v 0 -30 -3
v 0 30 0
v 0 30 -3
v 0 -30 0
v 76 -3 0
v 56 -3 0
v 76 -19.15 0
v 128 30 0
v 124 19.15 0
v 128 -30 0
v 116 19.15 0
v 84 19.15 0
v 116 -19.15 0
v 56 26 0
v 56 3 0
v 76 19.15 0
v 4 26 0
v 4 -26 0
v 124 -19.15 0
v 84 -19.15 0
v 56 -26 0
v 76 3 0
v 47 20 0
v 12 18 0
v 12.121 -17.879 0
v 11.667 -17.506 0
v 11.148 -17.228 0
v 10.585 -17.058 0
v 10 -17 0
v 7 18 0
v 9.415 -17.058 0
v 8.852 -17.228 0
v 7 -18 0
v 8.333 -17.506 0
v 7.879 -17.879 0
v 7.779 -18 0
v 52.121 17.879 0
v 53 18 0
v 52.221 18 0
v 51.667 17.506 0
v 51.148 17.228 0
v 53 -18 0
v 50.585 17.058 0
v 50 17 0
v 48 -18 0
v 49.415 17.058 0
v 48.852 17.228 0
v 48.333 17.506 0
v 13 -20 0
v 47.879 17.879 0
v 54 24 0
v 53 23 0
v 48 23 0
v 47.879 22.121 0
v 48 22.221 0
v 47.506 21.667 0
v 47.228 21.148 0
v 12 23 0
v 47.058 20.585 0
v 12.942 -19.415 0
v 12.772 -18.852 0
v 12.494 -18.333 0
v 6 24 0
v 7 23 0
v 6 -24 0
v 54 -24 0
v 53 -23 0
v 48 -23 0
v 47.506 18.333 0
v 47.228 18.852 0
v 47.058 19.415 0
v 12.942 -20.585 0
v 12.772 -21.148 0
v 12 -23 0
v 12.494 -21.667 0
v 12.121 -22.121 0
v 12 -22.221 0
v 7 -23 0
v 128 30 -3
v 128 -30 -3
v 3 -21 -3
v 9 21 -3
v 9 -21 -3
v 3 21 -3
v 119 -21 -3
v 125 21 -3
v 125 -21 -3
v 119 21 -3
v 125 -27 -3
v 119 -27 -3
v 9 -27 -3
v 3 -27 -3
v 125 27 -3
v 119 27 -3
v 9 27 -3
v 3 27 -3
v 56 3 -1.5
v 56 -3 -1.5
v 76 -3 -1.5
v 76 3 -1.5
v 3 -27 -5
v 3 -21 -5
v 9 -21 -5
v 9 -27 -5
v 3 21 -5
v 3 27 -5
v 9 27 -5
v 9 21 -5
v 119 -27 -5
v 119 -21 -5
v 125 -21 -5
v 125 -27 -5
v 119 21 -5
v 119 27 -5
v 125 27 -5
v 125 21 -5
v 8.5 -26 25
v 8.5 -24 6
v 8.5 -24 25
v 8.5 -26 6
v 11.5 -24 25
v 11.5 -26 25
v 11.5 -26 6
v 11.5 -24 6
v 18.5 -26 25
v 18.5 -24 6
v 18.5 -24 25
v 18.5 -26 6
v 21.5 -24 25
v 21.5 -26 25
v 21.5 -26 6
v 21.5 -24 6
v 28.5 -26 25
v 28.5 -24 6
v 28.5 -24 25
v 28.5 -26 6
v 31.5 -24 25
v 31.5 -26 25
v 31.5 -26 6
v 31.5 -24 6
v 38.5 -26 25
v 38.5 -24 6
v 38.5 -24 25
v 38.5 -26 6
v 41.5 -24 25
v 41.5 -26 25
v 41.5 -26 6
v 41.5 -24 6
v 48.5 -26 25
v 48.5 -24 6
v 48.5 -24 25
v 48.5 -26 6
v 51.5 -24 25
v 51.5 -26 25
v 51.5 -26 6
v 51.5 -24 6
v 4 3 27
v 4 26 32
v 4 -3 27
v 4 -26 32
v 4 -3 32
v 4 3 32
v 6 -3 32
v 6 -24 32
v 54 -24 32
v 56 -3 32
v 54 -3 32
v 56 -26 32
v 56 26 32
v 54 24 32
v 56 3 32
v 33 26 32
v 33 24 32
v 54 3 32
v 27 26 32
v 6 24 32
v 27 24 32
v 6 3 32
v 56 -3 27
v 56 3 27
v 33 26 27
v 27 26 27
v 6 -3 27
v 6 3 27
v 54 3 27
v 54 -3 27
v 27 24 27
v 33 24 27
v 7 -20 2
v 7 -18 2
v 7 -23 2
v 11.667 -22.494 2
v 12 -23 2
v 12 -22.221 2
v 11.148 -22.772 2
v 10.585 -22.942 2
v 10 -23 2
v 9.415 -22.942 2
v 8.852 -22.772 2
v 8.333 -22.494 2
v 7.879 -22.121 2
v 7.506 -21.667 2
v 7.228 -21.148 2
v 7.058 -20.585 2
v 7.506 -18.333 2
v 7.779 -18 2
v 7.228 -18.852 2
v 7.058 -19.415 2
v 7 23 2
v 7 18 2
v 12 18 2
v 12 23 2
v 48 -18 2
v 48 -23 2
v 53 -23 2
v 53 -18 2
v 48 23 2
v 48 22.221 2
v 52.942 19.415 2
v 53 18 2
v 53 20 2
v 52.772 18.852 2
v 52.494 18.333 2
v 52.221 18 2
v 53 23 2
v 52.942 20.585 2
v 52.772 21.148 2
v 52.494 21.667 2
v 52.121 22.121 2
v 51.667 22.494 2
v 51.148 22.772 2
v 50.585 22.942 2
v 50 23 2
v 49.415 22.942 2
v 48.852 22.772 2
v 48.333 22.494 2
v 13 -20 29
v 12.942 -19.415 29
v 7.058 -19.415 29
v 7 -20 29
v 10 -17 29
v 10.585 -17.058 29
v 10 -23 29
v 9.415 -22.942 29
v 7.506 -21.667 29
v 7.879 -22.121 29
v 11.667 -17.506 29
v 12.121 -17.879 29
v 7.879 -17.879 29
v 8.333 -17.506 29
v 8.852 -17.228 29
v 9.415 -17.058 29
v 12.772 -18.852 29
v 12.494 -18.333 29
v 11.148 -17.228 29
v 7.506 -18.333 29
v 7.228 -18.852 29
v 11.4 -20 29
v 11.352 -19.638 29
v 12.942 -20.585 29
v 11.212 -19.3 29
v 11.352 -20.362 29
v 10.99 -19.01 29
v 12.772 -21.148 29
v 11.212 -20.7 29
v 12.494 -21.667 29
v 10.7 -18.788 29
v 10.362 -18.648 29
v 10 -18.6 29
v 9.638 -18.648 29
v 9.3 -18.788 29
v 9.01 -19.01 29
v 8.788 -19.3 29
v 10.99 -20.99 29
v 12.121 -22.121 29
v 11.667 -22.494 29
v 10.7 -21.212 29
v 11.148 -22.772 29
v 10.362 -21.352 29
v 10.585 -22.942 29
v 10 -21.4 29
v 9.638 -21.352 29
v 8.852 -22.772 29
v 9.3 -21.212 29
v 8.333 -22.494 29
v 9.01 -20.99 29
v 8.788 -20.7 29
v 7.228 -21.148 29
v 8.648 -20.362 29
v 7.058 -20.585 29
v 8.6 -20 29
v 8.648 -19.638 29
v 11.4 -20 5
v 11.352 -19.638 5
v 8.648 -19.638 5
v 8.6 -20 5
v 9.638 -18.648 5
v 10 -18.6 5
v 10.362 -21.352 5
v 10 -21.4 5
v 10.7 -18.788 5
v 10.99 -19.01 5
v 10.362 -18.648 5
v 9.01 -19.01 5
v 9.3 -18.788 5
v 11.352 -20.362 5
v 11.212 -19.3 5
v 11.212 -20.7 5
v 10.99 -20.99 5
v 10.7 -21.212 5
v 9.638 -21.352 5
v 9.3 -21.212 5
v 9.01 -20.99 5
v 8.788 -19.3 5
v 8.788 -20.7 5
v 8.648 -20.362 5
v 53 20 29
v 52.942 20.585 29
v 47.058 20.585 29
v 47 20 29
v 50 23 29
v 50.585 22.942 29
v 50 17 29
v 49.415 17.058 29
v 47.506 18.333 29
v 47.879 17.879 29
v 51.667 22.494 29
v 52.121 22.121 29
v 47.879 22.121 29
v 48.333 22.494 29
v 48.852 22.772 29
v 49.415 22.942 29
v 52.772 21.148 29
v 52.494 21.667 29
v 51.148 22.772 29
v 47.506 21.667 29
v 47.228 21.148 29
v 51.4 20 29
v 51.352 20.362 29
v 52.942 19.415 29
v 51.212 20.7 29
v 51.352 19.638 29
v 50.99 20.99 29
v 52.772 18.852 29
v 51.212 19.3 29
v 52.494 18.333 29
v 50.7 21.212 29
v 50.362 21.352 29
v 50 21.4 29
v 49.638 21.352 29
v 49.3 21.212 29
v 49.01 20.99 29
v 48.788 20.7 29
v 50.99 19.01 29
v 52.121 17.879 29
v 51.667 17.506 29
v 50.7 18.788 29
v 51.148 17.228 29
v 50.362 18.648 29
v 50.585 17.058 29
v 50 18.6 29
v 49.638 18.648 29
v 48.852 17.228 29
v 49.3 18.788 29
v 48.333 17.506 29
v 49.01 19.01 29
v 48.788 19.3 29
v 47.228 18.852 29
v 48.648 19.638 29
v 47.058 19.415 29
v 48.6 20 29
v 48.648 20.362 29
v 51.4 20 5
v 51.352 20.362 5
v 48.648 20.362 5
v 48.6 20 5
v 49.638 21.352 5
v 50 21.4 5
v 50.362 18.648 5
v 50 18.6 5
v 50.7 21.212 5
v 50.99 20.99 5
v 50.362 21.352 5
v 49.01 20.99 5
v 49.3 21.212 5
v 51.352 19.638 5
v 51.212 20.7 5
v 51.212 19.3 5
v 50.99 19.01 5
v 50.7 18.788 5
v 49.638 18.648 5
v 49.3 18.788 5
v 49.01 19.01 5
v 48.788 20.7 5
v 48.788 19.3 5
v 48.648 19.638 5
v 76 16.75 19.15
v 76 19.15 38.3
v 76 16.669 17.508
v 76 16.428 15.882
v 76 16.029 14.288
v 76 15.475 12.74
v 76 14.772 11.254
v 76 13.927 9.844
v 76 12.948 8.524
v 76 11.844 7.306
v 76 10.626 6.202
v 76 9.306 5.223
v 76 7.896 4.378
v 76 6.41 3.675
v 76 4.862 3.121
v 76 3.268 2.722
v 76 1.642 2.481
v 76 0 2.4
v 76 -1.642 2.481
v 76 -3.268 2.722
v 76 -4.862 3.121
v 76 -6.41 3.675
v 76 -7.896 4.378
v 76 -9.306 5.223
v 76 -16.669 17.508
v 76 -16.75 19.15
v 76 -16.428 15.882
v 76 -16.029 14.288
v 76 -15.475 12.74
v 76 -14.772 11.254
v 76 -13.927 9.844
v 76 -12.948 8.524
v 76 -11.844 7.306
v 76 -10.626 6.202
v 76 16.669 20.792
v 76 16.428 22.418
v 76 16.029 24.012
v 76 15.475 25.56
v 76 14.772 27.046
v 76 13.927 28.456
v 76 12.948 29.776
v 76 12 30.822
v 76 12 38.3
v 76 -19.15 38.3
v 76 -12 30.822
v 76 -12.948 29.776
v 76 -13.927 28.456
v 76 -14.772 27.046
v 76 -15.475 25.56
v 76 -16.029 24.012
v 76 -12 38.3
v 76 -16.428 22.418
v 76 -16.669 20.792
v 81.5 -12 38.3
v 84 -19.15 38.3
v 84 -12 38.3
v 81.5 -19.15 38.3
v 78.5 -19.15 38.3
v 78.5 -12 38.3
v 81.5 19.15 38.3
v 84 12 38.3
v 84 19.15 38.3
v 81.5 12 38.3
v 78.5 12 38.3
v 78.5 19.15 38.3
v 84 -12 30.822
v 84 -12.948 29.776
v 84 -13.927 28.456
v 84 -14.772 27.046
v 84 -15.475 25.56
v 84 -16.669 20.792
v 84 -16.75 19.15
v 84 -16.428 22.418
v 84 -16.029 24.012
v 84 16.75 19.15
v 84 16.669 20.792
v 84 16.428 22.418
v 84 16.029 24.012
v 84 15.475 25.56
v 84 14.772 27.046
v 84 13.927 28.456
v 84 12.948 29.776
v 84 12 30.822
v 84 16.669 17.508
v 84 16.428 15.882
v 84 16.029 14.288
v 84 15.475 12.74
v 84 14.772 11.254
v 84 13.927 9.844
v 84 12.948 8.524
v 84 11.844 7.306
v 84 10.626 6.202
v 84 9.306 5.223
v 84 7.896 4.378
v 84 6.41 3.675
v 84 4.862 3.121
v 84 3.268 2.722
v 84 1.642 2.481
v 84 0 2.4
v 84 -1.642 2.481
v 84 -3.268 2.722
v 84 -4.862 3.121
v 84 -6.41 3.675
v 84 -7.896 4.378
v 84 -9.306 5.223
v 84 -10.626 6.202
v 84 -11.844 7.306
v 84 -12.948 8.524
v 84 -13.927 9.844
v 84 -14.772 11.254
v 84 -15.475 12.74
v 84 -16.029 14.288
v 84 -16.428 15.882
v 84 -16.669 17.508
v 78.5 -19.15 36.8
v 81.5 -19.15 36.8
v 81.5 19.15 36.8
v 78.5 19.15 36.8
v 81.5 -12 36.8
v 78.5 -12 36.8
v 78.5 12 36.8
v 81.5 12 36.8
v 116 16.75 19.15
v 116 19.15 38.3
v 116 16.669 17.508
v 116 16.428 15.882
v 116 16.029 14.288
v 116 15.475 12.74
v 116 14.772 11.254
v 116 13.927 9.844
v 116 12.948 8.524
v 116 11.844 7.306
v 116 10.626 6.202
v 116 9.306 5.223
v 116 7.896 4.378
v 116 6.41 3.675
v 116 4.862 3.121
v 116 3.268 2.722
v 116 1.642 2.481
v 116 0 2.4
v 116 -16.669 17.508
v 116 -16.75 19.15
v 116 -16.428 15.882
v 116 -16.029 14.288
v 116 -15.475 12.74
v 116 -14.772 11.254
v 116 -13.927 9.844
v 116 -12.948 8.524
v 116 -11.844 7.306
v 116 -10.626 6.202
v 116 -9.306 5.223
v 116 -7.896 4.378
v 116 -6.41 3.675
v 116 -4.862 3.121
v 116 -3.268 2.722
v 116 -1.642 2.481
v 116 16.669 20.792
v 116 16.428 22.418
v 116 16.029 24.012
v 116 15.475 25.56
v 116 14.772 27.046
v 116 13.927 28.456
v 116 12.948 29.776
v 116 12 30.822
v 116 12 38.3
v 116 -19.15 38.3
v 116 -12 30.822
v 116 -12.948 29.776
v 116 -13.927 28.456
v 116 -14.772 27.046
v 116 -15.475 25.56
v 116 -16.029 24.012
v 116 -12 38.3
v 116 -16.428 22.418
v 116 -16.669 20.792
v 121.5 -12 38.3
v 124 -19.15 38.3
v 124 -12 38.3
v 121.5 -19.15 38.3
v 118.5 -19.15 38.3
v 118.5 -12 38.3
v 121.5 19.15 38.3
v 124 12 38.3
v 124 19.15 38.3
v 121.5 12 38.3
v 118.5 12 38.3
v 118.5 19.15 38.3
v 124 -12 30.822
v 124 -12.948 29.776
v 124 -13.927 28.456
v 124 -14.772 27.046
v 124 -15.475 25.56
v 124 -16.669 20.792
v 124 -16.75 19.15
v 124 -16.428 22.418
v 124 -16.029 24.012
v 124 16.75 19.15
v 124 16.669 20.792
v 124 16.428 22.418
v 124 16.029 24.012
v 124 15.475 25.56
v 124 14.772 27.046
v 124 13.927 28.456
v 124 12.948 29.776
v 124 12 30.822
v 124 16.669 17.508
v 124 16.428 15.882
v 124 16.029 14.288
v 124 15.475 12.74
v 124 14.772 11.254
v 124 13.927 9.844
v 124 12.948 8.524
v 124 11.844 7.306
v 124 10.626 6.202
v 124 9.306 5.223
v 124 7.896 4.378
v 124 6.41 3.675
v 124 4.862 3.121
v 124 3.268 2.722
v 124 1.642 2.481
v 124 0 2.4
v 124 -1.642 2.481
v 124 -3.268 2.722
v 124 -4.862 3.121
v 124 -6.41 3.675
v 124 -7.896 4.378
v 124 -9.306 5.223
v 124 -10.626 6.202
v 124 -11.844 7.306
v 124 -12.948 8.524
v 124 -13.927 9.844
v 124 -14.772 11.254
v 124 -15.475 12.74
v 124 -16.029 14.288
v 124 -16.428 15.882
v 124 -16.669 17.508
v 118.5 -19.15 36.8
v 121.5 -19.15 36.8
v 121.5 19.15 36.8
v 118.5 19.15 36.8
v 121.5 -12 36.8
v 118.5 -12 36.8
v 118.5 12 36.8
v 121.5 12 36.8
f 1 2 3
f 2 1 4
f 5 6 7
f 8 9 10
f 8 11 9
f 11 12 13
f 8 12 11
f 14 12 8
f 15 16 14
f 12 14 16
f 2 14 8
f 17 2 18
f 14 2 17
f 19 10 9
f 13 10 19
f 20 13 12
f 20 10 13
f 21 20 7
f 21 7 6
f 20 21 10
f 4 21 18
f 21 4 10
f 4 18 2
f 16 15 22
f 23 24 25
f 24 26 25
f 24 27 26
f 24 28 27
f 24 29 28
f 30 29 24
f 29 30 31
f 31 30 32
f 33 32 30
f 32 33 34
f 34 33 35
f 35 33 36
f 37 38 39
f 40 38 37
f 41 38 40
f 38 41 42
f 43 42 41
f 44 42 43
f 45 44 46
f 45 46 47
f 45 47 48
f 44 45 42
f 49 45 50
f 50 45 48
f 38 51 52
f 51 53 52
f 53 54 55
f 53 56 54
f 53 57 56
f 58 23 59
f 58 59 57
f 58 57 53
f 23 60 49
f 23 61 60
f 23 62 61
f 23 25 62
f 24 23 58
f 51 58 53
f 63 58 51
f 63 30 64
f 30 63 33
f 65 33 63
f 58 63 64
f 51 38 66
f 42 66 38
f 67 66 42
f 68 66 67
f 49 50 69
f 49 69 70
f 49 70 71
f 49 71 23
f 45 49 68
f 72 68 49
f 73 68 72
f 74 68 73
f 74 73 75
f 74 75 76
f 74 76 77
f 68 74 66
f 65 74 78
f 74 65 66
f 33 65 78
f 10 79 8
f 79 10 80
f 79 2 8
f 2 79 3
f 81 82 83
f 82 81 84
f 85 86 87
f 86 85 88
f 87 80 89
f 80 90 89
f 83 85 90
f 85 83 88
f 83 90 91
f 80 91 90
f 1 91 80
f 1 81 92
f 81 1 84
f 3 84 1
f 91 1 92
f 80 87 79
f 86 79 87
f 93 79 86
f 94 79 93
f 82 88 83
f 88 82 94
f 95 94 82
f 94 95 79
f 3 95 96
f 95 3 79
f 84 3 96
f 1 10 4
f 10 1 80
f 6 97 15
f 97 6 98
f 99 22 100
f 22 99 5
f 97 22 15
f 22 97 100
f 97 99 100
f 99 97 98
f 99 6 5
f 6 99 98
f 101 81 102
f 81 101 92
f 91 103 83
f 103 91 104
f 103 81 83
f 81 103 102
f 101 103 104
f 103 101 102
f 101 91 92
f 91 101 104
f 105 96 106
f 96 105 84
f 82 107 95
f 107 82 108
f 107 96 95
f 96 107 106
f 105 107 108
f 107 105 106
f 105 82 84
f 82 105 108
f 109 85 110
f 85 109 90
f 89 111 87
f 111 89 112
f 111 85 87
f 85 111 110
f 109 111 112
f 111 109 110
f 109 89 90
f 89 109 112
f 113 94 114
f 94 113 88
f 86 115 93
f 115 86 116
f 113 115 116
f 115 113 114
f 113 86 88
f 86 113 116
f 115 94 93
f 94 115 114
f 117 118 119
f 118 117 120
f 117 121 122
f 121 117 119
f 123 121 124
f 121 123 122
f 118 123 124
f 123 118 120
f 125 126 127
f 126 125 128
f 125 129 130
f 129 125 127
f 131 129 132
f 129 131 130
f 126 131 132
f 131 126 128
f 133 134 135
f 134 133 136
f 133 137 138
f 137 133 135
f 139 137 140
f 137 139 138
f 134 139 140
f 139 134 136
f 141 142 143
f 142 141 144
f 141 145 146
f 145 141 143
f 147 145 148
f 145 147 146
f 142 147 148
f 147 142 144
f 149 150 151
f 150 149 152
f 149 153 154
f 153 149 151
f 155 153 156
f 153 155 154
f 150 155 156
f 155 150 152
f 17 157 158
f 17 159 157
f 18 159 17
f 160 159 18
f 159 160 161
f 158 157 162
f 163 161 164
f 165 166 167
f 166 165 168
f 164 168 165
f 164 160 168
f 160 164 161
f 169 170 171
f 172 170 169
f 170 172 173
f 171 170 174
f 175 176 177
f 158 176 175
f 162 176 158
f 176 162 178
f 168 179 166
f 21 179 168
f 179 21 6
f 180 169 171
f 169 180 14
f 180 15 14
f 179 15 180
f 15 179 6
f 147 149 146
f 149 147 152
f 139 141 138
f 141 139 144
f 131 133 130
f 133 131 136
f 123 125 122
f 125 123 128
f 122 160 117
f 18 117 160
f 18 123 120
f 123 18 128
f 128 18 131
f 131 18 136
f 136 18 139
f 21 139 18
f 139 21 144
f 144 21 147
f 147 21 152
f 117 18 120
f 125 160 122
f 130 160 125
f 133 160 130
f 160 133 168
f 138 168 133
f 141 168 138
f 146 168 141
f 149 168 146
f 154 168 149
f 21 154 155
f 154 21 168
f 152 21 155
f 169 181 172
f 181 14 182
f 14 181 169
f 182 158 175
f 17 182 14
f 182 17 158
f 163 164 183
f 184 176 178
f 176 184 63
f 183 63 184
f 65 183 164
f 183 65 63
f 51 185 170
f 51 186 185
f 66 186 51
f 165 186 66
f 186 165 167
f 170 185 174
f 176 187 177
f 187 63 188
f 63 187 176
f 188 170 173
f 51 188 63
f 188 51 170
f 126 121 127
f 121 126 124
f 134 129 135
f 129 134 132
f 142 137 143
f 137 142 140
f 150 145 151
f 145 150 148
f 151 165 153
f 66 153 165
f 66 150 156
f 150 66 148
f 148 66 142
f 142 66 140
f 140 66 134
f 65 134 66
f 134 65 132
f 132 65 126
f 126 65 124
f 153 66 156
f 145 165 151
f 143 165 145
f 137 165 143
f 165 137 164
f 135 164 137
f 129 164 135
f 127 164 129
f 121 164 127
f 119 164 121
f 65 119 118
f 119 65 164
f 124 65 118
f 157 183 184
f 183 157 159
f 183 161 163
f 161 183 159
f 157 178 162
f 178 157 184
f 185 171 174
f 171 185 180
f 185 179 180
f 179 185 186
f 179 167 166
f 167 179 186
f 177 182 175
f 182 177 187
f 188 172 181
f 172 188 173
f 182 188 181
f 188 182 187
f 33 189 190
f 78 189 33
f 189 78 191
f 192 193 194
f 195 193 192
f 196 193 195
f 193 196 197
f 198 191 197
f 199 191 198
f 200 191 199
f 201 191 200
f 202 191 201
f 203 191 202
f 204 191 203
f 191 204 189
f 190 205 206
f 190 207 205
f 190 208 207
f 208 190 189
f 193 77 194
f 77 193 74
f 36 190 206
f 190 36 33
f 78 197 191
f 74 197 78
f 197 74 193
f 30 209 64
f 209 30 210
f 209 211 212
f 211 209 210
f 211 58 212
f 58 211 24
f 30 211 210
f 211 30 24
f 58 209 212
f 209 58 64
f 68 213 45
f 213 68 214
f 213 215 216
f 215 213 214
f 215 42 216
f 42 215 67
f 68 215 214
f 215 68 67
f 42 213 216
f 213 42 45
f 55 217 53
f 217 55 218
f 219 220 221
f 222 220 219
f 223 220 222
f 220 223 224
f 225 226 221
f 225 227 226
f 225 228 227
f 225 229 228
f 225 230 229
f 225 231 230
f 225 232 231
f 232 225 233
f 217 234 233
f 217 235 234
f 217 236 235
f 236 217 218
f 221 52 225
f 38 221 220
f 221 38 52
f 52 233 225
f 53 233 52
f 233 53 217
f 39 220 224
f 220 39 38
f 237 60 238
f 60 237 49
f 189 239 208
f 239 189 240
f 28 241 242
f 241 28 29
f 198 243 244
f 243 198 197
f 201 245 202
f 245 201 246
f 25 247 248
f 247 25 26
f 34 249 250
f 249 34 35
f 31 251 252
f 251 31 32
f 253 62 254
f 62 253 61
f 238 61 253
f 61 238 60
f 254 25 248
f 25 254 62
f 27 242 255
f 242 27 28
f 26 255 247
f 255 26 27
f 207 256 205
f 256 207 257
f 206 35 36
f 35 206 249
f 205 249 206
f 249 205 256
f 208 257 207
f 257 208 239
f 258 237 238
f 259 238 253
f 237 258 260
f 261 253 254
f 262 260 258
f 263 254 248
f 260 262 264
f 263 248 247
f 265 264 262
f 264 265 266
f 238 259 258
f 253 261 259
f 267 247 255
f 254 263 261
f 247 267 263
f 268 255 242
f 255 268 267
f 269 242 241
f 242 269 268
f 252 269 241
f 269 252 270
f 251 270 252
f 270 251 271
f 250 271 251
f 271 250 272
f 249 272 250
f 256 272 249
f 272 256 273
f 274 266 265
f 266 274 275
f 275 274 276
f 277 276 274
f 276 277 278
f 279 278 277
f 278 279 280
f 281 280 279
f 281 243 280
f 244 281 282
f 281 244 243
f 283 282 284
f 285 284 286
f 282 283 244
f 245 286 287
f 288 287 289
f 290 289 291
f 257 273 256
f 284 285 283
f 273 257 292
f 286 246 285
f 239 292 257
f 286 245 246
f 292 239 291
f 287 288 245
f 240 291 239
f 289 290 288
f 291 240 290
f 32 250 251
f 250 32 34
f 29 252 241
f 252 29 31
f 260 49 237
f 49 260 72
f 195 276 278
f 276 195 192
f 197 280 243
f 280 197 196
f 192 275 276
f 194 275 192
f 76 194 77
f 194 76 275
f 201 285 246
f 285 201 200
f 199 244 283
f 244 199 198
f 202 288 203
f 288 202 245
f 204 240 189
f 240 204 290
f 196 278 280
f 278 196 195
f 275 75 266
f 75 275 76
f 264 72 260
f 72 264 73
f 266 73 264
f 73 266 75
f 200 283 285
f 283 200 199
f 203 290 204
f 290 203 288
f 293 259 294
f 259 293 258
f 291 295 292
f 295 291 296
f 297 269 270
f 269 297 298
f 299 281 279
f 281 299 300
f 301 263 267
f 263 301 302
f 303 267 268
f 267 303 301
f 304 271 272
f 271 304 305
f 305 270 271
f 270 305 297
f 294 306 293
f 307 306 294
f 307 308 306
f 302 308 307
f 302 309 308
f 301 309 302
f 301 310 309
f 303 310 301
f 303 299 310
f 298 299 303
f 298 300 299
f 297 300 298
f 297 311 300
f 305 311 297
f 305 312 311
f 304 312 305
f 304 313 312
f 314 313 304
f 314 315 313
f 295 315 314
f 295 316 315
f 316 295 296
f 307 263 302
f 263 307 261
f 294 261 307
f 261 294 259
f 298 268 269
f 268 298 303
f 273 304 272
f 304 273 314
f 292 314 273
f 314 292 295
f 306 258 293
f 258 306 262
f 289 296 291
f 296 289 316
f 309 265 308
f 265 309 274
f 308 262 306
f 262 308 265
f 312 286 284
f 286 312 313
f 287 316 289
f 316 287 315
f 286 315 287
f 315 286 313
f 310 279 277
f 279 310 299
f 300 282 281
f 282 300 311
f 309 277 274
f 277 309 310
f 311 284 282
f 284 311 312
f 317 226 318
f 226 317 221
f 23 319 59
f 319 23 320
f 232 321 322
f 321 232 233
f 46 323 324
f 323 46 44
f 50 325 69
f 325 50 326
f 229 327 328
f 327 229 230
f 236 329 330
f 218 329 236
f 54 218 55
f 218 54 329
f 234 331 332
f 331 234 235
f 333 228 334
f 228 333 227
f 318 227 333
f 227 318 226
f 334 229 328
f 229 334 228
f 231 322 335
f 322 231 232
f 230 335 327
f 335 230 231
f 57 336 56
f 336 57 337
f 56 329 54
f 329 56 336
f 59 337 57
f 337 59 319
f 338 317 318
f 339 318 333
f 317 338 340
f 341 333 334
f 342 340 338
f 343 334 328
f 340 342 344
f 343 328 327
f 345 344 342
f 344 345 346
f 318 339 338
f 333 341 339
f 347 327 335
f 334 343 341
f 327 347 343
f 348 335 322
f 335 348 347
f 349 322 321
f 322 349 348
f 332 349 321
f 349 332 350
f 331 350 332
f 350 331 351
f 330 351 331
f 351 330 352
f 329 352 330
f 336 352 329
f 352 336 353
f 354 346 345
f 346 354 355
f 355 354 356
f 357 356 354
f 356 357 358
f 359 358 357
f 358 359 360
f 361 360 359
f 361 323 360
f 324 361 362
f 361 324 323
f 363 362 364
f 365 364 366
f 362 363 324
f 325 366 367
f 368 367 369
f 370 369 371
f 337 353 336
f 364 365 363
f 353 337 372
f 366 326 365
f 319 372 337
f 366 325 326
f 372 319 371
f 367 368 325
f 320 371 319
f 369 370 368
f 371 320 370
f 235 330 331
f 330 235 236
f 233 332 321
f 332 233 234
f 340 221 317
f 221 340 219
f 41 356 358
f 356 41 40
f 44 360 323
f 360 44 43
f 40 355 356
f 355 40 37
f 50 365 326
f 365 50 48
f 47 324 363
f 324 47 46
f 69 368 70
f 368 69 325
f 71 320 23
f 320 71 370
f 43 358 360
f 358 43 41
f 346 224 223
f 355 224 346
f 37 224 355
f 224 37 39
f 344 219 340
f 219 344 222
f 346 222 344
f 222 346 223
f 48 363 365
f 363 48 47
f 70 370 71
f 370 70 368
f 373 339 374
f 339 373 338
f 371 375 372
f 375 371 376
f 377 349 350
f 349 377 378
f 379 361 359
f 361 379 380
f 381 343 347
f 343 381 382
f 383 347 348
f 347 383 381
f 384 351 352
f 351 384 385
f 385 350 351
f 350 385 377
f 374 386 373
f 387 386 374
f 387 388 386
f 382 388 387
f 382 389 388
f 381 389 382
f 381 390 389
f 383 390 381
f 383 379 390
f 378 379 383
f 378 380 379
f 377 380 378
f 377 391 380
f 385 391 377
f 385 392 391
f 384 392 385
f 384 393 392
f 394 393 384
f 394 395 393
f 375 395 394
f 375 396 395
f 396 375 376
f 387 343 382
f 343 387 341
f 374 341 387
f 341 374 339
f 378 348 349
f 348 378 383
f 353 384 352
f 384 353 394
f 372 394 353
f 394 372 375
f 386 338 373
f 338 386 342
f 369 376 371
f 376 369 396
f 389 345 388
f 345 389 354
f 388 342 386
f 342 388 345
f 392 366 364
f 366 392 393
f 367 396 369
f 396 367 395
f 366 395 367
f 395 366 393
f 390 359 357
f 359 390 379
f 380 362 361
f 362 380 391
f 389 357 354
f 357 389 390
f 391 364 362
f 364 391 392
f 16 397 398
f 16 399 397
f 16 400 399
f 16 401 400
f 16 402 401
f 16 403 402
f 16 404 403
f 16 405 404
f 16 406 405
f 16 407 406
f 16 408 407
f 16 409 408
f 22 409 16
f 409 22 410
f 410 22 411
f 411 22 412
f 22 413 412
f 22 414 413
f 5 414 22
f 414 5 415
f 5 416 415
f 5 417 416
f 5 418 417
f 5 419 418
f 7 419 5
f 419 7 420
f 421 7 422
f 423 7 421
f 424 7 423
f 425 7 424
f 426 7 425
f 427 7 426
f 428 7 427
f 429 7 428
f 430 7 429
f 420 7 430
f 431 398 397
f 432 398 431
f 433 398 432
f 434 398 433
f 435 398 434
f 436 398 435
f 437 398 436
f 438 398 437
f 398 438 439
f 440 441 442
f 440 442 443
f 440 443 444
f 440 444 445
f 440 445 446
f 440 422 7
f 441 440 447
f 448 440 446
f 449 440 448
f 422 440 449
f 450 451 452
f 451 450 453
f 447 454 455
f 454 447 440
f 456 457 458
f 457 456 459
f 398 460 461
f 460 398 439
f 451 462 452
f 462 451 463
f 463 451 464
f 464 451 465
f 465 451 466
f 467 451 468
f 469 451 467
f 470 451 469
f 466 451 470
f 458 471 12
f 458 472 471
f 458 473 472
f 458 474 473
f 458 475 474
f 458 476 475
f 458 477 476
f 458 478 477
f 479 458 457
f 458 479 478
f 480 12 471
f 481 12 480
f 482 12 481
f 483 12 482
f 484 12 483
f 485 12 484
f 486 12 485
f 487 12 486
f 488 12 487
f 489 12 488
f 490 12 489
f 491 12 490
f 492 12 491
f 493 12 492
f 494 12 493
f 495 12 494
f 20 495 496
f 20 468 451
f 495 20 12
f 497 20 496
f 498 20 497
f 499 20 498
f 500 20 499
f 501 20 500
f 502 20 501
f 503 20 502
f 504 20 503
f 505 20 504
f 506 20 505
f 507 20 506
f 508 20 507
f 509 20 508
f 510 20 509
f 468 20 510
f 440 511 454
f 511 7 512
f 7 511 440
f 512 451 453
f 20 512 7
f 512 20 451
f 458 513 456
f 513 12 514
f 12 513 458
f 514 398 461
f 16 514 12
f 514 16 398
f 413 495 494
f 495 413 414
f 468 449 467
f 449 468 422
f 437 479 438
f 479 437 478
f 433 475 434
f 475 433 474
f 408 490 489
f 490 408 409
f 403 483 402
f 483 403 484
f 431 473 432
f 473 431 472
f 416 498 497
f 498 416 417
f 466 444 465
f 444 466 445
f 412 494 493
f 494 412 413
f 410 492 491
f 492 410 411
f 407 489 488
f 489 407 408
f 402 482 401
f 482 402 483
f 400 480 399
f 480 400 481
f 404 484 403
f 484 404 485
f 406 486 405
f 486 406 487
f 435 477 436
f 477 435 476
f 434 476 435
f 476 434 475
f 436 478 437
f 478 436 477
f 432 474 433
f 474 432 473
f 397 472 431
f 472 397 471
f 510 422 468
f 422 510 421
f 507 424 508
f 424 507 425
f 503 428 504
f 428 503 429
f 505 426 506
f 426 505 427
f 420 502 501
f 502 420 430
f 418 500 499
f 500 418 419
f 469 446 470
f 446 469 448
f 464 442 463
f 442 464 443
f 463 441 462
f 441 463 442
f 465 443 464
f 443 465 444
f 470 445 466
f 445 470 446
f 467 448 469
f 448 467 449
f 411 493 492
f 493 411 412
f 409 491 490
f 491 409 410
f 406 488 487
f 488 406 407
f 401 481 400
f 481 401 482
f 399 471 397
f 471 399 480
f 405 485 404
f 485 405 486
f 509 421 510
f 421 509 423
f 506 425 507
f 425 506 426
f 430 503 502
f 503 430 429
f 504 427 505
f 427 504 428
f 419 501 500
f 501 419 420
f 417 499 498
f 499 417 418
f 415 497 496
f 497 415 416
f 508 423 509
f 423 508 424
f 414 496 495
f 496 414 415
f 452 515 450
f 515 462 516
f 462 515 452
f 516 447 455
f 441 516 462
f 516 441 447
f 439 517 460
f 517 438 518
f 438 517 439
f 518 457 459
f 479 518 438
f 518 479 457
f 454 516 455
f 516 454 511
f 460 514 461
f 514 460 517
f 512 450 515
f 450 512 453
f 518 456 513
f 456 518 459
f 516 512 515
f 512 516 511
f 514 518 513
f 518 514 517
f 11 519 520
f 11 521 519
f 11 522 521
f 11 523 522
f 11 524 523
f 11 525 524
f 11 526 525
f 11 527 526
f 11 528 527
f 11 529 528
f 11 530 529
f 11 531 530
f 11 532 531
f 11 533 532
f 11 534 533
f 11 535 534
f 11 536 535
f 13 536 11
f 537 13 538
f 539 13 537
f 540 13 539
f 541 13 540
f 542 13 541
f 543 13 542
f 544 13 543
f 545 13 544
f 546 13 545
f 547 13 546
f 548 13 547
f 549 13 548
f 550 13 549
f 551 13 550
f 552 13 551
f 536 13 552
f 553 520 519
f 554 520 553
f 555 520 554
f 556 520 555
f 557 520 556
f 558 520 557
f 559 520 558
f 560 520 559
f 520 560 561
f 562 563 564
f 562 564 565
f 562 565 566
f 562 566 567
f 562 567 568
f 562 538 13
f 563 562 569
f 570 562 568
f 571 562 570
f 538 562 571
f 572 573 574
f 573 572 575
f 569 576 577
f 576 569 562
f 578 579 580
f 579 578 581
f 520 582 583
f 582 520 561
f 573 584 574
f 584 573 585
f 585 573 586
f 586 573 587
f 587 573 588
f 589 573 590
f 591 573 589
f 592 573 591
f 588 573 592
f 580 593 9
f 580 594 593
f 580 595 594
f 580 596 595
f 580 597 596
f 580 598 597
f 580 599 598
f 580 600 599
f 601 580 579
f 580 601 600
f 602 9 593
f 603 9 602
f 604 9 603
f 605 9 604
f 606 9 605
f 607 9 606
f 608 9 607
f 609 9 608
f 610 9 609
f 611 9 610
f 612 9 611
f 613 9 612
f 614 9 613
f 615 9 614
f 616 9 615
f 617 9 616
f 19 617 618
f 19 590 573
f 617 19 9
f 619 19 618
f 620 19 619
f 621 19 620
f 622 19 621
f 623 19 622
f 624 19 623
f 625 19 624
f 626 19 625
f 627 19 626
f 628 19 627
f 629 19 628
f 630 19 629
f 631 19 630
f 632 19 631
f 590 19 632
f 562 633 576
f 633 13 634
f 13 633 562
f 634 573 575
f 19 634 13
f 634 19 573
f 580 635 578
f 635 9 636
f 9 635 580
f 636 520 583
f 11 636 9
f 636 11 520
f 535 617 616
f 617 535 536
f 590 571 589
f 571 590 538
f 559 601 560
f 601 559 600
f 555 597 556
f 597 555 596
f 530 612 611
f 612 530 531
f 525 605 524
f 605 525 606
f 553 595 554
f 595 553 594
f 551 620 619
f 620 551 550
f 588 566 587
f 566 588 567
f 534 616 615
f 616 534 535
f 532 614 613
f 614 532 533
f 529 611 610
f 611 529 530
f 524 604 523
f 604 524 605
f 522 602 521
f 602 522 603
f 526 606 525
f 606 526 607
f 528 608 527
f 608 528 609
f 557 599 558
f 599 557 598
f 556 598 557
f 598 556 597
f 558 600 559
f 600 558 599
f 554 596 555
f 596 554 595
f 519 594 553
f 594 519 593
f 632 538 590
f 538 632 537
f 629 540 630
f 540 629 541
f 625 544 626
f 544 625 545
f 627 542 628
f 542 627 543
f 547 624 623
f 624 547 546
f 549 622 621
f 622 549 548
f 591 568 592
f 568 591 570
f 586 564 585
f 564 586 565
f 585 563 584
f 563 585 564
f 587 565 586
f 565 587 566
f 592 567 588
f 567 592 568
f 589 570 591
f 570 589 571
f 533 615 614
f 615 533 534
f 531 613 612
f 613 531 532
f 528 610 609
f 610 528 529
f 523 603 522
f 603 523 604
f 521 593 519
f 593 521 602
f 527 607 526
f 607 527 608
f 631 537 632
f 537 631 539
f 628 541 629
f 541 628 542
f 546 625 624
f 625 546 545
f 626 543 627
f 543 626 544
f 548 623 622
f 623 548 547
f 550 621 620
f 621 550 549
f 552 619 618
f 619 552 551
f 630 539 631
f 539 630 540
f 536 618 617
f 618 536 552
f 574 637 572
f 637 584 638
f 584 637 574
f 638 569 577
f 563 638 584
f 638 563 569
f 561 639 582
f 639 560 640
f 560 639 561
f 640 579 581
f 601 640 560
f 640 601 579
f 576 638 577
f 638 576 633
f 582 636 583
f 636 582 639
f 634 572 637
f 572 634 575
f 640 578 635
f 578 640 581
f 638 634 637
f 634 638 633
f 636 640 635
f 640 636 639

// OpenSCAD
// file: ../components/pump_station_001.scad
// ============================================================================
// pump_station_001.scad — Trạm bơm gọn: đế liền + hộp che L298N + yên kẹp RS365
// ----------------------------------------------------------------------------
// Nguồn: docs/superpowers/specs/2026-07-24-pump-station-mount-design.md
// Kiến trúc: 1 tấm đế (baseplate) mang liền 2 cụm — hộp L298N (hở nắp, nắp rời
// pump_station_lid()) và 2 yên kẹp ôm thân trụ bơm RS365 — nối bằng 1 rãnh dây
// nông trên mặt đế. pump_rs365() (accessories_001.scad) KHÔNG đổi, vẫn chỉ là
// mô hình hiển thị bơm mua sẵn (không in); phần in MỚI ở file này là đế + hộp +
// yên kẹp.
//
// Trục dài đế = X. Hộp L298N ở đầu −X (gần), 2 yên kẹp ở đầu +X (xa) — lỗ khoan
// yên kẹp nằm NGANG dọc trục X, khớp hướng trục bơm (giống cách pump_rs365()
// dựng cylinder dọc X qua rotate([0,90,0])).
//
// Yên kẹp: khối vuông + lỗ khoan ngang Ø pump_clamp_id + khe hẹp từ đỉnh khối
// xuống tâm lỗ (rộng pump_clamp_slot_w < Ø lỗ) để lồng bơm từ TRÊN xuống, PETG
// hơi dẻo ép giữ. Tâm lỗ đặt tại pump_clamp_od/2 (đối xứng trên/dưới khối) để
// thành dưới lỗ luôn dày đúng pump_clamp_t bất kể số đo pump_bbox — ưu tiên AN
// TOÀN KẾT CẤU hơn là khớp pixel với model placeholder pump_rs365() (lệch cao độ
// vài mm so placeholder chỉ là sai khác hiển thị, không ảnh hưởng mount thật).
// ============================================================================
include <../constants.scad>

EPS = 0.05;

// ---------------------------------------------------------------- Hộp L298N (hở nắp — đáy = mặt đế bên dưới)
module l298n_box_walls() {
    difference() {
        cube([l298n_box_od_l, l298n_box_od_w, l298n_box_h]);
        // Khoét lòng hộp (chừa 4 thành; không chừa sàn — sàn = mặt đế)
        translate([l298n_box_wall, l298n_box_wall, -EPS])
            cube([l298n_box_id_l, l298n_box_id_w, l298n_box_h + 2*EPS]);
        // Khe dây INPUT 12V — cạnh −X (hướng ra ngoài trạm, xa bơm)
        translate([-EPS, l298n_box_od_w/2 - wire_notch_w/2, l298n_box_h - wire_notch_h])
            cube([l298n_box_wall + 2*EPS, wire_notch_w, wire_notch_h + EPS]);
        // Khe dây OUTPUT động cơ — cạnh +X (hướng về phía yên kẹp bơm)
        translate([l298n_box_od_l - l298n_box_wall - EPS, l298n_box_od_w/2 - wire_notch_w/2,
                   l298n_box_h - wire_notch_h])
            cube([l298n_box_wall + 2*EPS, wire_notch_w, wire_notch_h + EPS]);
        // Khe dây LOGIC (IN1/IN2/EN + GND lên ESP32) — cạnh +Y (về khối quang chính)
        translate([l298n_box_od_l/2 - wire_notch_w/2, l298n_box_od_w - l298n_box_wall - EPS,
                   l298n_box_h - wire_notch_h])
            cube([wire_notch_w, l298n_box_wall + 2*EPS, wire_notch_h + EPS]);
        // Khe thoát khí — cạnh −Y (đối diện khe logic, phía tản nhiệt board)
        for (i = [0 : l298n_vent_n - 1])
            translate([l298n_box_wall + 4 + i * (l298n_box_id_l - 8) / (l298n_vent_n - 1) - l298n_vent_w/2,
                       -EPS, 6])
                cube([l298n_vent_w, l298n_box_wall + 2*EPS, l298n_box_h - 6 - wire_notch_h - 2]);
    }
    // 4 gờ đỡ góc board (board tựa lên — KHÔNG cần khớp lỗ vít board thật)
    foot_sz = 5.0;
    for (cx = [l298n_box_wall + 1, l298n_box_od_l - l298n_box_wall - 1 - foot_sz])
        for (cy = [l298n_box_wall + 1, l298n_box_od_w - l298n_box_wall - 1 - foot_sz])
            translate([cx, cy, 0])
                cube([foot_sz, foot_sz, l298n_foot_h]);
    // 2 gờ vít M3 tự-ren giữ nắp, 2 góc chéo
    boss_d = 6.0;
    for (p = [[l298n_box_wall + boss_d/2 + 1, l298n_box_wall + boss_d/2 + 1],
              [l298n_box_od_l - l298n_box_wall - boss_d/2 - 1,
               l298n_box_od_w - l298n_box_wall - boss_d/2 - 1]])
        translate([p[0], p[1], 0])
            difference() {
                cylinder(d = boss_d, h = l298n_box_h - 3, $fn = 32);
                // Lỗ tự-ren hở TỪ ĐỈNH gờ (vít xuyên nắp từ trên xuống bắt vào đây);
                // chừa 5mm đặc ở ĐÁY gờ (giáp mặt đế) để không thông xuống đế.
                // (SỬA so bản gốc trong brief: bản gốc đặt lỗ hở ở ĐÁY [z=-EPS] và
                // đặc ở ĐỈNH [z=24..29] — ngược hướng, vít từ trên không vào được lỗ.)
                translate([0, 0, 5])
                    cylinder(d = l298n_lid_screw_d, h = l298n_box_h - 3 - 5 + EPS, $fn = 24);
            }
}

// Nắp hộp L298N — chi tiết in RIÊNG (print_pump_station_lid.scad)
module pump_station_lid() {
    boss_d = 6.0;
    difference() {
        cube([l298n_box_od_l, l298n_box_od_w, l298n_lid_t]);
        for (p = [[l298n_box_wall + boss_d/2 + 1, l298n_box_wall + boss_d/2 + 1],
                  [l298n_box_od_l - l298n_box_wall - boss_d/2 - 1,
                   l298n_box_od_w - l298n_box_wall - boss_d/2 - 1]])
            translate([p[0], p[1], -EPS])
                cylinder(d = l298n_lid_clr_d, h = l298n_lid_t + 2*EPS, $fn = 24);
    }
}

// ---------------------------------------------------------------- Yên kẹp bơm: khối + lỗ khoan ngang + khe lồng từ trên
module pump_clamp_post() {
    block_h  = pump_clamp_od;
    center_z = pump_clamp_od / 2;
    difference() {
        translate([0, -pump_clamp_od/2, 0])
            cube([pump_clamp_w, pump_clamp_od, block_h]);
        // Lỗ khoan ngang (trục X = trục bơm) giữ thân trụ động cơ
        translate([-EPS, 0, center_z])
            rotate([0, 90, 0])
                cylinder(d = pump_clamp_id, h = pump_clamp_w + 2*EPS, $fn = 64);
        // Khe lồng từ ĐỈNH khối xuống tâm lỗ (hẹp hơn Ø lỗ — PETG dẻo ép giữ bơm)
        translate([-EPS, -pump_clamp_slot_w/2, center_z])
            cube([pump_clamp_w + 2*EPS, pump_clamp_slot_w, block_h - center_z + EPS]);
        // Rãnh zip-tie trên đỉnh khối, cắt ngang qua khe lồng (bù sai số Ø bơm thật)
        translate([pump_clamp_w/2 - pump_clamp_strap_w/2, -pump_clamp_od/2 - EPS, block_h - 1.5])
            cube([pump_clamp_strap_w, pump_clamp_od + 2*EPS, 1.5 + EPS]);
    }
}

// ---------------------------------------------------------------- Rãnh dây nối hộp L298N ↔ yên kẹp bơm (khoét vào mặt đế)
module wire_channel(length) {
    ch_w = 6.0; ch_d = 1.5;
    translate([0, -ch_w/2, -ch_d])
        cube([length, ch_w, ch_d + EPS]);
}

// ---------------------------------------------------------------- Trạm bơm hoàn chỉnh (đế + hộp L298N không nắp + 2 yên kẹp)
// Gốc cục bộ: góc −X/−Y của đế tại z=0 (mặt TRÊN đế); đế dày pump_station_base_t
// nằm ở z ÂM (−pump_station_base_t .. 0).
module pump_station() {
    box_x    = pump_station_margin;
    clamp_x0 = box_x + l298n_box_od_l + pump_station_gap;
    clamp_x1 = clamp_x0 + pump_clamp_gap;
    base_y   = pump_station_wid / 2;
    chan_len = clamp_x0 - (box_x + l298n_box_od_l);

    // Đế (khoét rãnh dây trên mặt)
    difference() {
        translate([0, -base_y, -pump_station_base_t])
            cube([pump_station_len, pump_station_wid, pump_station_base_t]);
        translate([box_x + l298n_box_od_l, 0, 0])
            wire_channel(chan_len);
    }
    // 4 chân đế góc
    foot_sz = 6.0;
    for (fx = [3, pump_station_len - 3 - foot_sz])
        for (fy = [-base_y + 3, base_y - 3 - foot_sz])
            translate([fx, fy, -pump_station_base_t - pump_station_foot_h])
                cube([foot_sz, foot_sz, pump_station_foot_h]);
    // Hộp L298N (căn giữa theo bề rộng đế)
    translate([box_x, -l298n_box_od_w/2, 0]) l298n_box_walls();
    // 2 yên kẹp bơm (căn giữa theo bề rộng đế; lỗ khoan nằm ngang trục X)
    translate([clamp_x0, 0, 0]) pump_clamp_post();
    translate([clamp_x1, 0, 0]) pump_clamp_post();
}

// Xem lẻ
pump_station();
translate([0, 80, 0]) pump_station_lid();
// main file
// print_pump_station.scad — Đế liền + hộp che L298N (không nắp) + 2 yên kẹp bơm (1 chi tiết in).
// In phẳng (mặt đế xuống bàn), không cần support. Vật liệu PETG (dẻo hơn PLA —
// khe lồng yên kẹp cần đàn hồi nhẹ để ép giữ thân bơm khi lắp).
// Sau in: thử board L298N vào hộp (4 gờ góc phải đỡ được board không cấn),
// thử lồng ống trụ Ø~31.5mm (hoặc bơm thật) vào 2 yên kẹp từ trên xuống.
include <../constants.scad>
use <../components/pump_station_001.scad>

pump_station();
